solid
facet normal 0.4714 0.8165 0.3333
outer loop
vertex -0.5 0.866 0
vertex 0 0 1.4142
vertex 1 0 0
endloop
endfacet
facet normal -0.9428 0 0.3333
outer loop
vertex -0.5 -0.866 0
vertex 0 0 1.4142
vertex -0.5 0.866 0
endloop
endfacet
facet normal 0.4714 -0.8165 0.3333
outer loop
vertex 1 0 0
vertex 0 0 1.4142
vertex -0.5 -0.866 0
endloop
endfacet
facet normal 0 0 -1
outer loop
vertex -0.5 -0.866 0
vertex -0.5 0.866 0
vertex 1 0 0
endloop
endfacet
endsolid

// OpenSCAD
// Tetrahedron
// (really just to export the stl file)

cylinder(sqrt(2),1,0,$fn=3);
